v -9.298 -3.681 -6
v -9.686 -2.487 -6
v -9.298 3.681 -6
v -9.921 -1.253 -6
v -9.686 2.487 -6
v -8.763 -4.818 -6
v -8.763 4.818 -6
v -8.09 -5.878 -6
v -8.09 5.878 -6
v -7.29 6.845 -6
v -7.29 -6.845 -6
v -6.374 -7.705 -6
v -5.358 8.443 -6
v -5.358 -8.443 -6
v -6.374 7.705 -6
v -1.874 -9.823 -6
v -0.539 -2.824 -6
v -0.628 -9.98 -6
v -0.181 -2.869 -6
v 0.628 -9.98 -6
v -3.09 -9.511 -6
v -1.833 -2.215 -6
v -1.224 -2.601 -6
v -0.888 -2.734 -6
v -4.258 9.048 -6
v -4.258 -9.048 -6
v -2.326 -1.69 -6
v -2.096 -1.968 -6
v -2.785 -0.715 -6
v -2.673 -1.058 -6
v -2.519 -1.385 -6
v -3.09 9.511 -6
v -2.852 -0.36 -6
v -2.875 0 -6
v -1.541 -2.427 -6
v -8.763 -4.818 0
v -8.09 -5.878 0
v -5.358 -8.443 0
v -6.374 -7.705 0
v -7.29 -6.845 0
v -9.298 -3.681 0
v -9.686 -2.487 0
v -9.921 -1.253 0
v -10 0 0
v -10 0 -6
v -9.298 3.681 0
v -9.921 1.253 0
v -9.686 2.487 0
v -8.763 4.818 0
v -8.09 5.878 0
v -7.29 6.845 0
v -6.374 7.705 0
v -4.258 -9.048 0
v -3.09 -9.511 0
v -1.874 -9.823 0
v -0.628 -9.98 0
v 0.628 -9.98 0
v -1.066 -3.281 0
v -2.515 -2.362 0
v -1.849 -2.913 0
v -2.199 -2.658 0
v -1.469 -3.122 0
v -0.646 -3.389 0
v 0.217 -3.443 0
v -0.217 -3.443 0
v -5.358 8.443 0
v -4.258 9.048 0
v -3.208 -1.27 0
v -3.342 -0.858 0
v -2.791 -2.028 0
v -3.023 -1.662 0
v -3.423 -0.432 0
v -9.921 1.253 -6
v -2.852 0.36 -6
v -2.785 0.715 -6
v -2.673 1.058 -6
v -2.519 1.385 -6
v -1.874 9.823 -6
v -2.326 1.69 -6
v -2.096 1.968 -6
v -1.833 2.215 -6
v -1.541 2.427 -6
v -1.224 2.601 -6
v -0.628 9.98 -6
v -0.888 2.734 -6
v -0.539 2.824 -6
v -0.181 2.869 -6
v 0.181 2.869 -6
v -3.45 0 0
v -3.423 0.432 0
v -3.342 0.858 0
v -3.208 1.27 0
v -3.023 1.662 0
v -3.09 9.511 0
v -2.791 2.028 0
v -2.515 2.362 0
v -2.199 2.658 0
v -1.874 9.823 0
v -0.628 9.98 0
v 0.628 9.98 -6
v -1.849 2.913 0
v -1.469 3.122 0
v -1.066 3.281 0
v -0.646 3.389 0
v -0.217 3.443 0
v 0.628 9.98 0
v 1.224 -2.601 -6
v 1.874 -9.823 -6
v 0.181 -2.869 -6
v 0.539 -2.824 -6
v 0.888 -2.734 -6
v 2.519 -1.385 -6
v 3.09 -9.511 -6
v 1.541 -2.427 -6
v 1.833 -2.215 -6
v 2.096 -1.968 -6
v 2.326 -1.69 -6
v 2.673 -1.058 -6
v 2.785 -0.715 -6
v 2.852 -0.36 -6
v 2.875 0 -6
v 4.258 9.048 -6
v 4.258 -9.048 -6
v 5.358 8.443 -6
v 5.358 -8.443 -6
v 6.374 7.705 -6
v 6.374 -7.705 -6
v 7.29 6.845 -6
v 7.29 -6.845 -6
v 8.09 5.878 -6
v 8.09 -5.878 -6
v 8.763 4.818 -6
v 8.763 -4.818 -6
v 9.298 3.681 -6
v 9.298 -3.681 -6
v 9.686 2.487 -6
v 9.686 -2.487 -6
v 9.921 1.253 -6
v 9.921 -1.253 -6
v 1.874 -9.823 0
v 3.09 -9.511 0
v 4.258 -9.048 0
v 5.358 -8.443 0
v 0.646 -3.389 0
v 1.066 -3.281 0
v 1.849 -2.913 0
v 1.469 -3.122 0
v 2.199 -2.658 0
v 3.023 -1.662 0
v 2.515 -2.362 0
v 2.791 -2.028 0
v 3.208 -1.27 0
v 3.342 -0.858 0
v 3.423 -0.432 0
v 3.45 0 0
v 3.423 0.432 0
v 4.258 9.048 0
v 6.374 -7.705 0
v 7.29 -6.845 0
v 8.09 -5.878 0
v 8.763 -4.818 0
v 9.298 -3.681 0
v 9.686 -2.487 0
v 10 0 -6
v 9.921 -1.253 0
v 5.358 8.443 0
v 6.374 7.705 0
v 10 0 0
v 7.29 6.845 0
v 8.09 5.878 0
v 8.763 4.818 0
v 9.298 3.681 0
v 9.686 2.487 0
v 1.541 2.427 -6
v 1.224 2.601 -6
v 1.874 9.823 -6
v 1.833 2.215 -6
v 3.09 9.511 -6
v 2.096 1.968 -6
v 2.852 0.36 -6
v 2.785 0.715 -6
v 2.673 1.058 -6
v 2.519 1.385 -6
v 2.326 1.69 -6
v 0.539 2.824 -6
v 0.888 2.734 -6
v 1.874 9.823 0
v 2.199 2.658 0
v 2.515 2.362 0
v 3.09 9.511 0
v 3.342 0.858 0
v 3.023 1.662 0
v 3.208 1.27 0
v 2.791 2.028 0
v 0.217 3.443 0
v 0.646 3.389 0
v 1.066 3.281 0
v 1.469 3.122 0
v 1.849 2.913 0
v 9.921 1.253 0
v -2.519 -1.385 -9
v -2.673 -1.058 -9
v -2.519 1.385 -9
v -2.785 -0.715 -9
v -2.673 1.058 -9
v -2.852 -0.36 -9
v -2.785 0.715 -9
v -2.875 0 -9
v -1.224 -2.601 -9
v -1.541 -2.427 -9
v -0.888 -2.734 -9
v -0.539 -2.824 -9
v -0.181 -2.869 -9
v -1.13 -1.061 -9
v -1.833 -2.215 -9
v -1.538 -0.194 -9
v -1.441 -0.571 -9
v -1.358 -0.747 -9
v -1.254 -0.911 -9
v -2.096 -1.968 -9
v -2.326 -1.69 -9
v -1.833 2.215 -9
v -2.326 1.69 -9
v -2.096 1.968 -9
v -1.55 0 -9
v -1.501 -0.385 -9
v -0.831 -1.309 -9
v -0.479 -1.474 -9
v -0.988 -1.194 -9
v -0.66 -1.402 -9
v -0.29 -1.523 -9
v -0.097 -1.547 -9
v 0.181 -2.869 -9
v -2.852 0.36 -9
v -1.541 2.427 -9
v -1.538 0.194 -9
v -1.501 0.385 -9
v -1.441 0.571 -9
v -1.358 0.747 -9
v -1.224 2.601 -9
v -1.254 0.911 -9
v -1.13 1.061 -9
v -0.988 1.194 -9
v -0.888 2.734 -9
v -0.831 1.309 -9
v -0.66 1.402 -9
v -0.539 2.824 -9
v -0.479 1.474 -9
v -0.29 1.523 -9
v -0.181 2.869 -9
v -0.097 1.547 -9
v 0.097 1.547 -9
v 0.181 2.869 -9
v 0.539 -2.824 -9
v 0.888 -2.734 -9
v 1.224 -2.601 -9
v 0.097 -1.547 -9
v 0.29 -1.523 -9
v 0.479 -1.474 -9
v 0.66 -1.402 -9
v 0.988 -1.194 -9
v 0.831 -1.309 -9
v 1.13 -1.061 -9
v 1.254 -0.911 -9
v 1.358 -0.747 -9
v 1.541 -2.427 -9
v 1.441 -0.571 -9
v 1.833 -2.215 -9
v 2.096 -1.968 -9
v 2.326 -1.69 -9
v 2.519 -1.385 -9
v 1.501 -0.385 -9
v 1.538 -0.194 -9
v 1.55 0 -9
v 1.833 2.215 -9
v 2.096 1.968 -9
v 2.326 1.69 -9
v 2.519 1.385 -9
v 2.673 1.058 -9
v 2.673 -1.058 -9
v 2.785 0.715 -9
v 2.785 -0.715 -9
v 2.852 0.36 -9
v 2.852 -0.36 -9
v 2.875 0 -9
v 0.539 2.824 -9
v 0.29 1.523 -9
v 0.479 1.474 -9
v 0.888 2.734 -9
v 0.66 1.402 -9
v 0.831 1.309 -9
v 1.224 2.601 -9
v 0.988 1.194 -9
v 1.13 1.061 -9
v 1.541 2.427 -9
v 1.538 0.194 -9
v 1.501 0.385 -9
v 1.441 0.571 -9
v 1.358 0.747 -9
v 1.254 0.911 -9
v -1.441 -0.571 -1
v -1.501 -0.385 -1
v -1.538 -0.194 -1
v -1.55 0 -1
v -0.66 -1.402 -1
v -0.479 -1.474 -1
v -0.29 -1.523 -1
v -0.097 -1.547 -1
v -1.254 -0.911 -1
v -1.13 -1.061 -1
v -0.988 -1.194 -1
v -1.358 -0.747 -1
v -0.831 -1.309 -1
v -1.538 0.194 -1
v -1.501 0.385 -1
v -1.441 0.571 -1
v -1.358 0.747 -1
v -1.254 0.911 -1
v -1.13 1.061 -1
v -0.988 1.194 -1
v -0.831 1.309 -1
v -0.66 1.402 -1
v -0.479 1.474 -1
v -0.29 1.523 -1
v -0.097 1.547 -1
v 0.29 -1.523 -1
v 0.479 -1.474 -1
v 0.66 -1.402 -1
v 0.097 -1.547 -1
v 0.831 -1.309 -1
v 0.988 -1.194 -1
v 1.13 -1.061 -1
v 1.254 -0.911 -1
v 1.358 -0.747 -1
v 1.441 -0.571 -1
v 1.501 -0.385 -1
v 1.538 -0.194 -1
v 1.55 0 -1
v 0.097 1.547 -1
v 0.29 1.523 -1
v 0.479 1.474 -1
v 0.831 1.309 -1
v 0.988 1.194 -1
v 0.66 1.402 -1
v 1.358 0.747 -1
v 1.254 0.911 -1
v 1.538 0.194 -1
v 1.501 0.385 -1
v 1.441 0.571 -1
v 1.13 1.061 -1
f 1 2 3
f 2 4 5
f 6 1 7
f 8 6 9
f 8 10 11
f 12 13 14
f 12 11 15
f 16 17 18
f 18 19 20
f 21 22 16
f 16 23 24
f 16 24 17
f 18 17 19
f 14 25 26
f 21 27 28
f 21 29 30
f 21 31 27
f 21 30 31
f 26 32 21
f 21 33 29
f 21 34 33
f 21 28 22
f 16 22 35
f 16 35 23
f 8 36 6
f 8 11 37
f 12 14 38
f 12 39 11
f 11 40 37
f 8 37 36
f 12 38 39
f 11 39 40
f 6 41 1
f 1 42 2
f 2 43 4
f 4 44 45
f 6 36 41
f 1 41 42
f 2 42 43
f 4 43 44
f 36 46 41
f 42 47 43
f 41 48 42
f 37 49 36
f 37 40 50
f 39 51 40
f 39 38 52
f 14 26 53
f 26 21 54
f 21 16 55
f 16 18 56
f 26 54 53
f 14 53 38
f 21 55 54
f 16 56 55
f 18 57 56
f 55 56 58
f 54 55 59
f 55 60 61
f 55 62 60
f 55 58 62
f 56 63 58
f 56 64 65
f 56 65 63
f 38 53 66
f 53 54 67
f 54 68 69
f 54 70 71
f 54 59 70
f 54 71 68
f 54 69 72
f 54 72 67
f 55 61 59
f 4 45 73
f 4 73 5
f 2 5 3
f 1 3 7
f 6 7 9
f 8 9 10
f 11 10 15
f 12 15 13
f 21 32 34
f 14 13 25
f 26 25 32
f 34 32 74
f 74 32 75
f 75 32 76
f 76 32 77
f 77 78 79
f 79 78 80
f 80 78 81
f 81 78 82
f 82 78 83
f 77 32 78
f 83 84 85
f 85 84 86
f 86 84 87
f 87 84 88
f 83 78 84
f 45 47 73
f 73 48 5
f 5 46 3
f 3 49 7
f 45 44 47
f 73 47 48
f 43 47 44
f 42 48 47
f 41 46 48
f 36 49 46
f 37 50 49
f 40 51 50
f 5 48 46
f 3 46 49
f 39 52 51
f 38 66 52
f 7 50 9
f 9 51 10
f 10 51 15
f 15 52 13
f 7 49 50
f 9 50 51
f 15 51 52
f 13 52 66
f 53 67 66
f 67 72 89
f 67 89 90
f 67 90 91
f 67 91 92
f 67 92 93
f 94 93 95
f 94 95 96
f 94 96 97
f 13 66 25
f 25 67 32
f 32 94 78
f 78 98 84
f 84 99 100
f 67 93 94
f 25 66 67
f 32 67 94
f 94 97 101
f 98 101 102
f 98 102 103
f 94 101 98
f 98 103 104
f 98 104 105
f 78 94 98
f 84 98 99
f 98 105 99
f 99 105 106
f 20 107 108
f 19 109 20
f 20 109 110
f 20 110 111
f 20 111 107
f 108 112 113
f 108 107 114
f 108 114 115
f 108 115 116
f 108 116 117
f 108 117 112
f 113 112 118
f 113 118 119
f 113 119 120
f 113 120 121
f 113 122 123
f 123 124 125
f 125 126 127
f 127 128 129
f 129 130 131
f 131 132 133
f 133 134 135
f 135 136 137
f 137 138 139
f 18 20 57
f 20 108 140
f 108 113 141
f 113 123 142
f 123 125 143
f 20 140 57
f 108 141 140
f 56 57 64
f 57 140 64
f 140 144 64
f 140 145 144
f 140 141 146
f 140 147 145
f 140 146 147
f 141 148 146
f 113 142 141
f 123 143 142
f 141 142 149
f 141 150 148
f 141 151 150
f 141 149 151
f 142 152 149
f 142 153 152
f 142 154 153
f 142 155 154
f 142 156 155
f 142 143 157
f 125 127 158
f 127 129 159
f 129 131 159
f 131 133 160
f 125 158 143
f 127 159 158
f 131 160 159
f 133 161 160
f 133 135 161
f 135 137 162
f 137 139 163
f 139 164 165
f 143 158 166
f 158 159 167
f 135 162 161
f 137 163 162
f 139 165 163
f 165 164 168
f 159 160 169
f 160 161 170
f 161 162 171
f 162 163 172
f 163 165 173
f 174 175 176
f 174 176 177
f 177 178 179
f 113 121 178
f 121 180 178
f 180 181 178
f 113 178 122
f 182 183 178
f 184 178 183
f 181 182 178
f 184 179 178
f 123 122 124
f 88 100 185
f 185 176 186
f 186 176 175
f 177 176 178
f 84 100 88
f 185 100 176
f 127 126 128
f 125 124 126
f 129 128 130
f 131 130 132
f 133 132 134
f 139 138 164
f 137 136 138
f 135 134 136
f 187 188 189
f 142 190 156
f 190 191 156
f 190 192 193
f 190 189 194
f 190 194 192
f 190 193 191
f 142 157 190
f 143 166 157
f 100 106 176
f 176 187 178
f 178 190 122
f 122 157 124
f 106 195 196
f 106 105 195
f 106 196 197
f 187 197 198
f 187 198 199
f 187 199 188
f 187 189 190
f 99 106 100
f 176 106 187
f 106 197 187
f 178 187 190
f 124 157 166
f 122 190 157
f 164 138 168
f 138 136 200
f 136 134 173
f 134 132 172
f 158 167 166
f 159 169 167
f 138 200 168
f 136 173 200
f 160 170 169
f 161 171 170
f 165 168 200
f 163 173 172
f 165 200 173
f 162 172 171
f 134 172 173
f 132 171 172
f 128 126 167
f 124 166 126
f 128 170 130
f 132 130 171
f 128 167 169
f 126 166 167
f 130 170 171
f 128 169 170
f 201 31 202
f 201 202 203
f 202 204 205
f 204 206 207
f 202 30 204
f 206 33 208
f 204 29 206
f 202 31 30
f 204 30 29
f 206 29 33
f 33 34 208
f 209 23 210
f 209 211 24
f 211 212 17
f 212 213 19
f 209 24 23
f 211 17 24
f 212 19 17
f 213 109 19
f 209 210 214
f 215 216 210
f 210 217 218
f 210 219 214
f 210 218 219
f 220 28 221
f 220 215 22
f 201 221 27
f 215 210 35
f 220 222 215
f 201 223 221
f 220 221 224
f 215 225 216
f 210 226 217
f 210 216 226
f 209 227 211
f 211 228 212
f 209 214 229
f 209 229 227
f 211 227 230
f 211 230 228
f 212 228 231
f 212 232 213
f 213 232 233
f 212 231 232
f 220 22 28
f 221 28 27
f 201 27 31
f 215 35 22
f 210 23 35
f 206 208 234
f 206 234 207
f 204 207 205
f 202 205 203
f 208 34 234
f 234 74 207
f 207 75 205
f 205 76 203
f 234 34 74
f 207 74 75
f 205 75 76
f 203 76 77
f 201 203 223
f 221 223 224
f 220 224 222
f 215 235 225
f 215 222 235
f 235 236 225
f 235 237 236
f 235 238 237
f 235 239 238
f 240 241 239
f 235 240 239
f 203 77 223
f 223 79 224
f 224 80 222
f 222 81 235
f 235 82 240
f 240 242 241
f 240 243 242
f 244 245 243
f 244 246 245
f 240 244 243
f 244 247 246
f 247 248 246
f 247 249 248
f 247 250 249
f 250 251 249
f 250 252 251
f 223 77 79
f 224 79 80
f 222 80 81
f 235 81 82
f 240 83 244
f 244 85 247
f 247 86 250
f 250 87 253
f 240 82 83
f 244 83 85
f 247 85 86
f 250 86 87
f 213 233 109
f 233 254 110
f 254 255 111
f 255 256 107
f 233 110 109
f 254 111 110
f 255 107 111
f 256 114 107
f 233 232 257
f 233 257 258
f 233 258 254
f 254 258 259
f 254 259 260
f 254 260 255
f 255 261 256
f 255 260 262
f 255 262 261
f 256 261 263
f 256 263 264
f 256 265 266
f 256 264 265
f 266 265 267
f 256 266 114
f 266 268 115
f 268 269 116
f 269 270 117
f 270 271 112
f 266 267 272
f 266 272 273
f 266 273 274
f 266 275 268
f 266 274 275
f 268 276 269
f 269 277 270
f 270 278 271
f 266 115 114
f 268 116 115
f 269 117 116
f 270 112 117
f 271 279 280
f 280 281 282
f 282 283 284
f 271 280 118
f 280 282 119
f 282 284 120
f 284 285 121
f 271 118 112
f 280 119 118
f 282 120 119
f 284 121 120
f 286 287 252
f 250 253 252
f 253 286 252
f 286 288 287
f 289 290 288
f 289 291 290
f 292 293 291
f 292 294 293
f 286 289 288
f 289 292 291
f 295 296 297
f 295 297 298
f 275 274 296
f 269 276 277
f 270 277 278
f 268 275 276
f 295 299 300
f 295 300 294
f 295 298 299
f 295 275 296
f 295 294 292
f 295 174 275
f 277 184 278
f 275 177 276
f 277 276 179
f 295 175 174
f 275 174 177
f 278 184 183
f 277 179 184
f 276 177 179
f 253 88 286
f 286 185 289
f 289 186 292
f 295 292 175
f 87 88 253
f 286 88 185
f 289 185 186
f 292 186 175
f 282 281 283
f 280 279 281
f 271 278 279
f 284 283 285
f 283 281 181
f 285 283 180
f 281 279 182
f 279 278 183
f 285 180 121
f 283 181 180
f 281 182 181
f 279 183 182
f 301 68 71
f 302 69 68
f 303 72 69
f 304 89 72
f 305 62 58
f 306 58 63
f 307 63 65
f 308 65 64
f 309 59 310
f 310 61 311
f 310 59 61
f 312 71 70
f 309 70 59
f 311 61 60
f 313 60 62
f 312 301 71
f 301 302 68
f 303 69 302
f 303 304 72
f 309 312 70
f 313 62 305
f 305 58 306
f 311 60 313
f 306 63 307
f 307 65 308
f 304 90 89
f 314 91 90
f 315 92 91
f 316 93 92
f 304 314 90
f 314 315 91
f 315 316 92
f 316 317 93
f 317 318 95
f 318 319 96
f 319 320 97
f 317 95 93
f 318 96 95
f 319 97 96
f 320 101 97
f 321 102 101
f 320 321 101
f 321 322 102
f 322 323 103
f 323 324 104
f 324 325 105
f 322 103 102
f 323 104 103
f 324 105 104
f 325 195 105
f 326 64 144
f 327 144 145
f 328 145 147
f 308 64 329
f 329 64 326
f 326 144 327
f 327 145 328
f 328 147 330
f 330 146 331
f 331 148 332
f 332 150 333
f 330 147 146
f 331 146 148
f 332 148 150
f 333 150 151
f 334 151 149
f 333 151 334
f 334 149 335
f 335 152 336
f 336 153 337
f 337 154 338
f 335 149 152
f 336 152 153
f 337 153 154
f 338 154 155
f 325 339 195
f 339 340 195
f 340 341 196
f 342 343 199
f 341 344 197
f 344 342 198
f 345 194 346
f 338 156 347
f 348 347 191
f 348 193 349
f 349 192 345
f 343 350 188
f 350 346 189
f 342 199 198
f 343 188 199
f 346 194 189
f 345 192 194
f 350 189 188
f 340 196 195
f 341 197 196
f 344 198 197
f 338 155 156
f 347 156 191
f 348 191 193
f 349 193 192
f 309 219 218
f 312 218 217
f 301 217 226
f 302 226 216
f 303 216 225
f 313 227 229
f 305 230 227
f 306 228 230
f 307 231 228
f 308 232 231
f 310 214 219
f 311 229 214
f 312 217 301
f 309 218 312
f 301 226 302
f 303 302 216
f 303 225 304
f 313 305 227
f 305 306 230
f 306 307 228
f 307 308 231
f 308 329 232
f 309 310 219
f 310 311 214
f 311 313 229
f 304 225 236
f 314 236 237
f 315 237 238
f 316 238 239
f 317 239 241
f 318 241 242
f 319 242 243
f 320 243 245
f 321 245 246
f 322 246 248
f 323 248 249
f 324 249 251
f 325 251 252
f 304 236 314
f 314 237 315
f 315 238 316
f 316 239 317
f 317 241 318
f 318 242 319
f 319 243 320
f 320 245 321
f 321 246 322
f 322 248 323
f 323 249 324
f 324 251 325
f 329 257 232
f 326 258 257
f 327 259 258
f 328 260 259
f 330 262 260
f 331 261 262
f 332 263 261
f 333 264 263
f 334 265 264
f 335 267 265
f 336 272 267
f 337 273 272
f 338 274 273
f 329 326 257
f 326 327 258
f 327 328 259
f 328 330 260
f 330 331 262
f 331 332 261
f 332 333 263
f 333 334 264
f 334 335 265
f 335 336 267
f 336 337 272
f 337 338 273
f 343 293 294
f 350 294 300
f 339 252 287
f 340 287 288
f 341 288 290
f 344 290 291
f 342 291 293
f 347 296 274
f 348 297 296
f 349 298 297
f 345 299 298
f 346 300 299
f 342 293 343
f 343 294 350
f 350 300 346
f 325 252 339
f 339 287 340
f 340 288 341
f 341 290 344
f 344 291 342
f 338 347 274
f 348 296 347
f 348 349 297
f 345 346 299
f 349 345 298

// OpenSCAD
$fn = 50;

difference() {
	union() {
		translate(v = [0, 0, -6.0]) {
			cylinder(h = 6, r = 10.0);
		}
		#translate(v = [0, 0, -9.0]) {
			cylinder(h = 9, r = 2.875);
		}
	}
	union() {
		translate(v = [0, 0, 0]) {
			rotate(a = [0, 0, 0]) {
				difference() {
					union() {
						translate(v = [0, 0, -9.0]) {
							cylinder(h = 9, r = 1.25);
						}
						translate(v = [0, 0, -1.0]) {
							cylinder(h = 1.0, r1 = 1.55, r2 = 3.45);
						}
						translate(v = [0, 0, -9.0]) {
							cylinder(h = 9, r = 1.55);
						}
						translate(v = [0, 0, -9.0]) {
							cylinder(h = 9, r = 1.25);
						}
					}
					union();
				}
			}
		}
	}
}
